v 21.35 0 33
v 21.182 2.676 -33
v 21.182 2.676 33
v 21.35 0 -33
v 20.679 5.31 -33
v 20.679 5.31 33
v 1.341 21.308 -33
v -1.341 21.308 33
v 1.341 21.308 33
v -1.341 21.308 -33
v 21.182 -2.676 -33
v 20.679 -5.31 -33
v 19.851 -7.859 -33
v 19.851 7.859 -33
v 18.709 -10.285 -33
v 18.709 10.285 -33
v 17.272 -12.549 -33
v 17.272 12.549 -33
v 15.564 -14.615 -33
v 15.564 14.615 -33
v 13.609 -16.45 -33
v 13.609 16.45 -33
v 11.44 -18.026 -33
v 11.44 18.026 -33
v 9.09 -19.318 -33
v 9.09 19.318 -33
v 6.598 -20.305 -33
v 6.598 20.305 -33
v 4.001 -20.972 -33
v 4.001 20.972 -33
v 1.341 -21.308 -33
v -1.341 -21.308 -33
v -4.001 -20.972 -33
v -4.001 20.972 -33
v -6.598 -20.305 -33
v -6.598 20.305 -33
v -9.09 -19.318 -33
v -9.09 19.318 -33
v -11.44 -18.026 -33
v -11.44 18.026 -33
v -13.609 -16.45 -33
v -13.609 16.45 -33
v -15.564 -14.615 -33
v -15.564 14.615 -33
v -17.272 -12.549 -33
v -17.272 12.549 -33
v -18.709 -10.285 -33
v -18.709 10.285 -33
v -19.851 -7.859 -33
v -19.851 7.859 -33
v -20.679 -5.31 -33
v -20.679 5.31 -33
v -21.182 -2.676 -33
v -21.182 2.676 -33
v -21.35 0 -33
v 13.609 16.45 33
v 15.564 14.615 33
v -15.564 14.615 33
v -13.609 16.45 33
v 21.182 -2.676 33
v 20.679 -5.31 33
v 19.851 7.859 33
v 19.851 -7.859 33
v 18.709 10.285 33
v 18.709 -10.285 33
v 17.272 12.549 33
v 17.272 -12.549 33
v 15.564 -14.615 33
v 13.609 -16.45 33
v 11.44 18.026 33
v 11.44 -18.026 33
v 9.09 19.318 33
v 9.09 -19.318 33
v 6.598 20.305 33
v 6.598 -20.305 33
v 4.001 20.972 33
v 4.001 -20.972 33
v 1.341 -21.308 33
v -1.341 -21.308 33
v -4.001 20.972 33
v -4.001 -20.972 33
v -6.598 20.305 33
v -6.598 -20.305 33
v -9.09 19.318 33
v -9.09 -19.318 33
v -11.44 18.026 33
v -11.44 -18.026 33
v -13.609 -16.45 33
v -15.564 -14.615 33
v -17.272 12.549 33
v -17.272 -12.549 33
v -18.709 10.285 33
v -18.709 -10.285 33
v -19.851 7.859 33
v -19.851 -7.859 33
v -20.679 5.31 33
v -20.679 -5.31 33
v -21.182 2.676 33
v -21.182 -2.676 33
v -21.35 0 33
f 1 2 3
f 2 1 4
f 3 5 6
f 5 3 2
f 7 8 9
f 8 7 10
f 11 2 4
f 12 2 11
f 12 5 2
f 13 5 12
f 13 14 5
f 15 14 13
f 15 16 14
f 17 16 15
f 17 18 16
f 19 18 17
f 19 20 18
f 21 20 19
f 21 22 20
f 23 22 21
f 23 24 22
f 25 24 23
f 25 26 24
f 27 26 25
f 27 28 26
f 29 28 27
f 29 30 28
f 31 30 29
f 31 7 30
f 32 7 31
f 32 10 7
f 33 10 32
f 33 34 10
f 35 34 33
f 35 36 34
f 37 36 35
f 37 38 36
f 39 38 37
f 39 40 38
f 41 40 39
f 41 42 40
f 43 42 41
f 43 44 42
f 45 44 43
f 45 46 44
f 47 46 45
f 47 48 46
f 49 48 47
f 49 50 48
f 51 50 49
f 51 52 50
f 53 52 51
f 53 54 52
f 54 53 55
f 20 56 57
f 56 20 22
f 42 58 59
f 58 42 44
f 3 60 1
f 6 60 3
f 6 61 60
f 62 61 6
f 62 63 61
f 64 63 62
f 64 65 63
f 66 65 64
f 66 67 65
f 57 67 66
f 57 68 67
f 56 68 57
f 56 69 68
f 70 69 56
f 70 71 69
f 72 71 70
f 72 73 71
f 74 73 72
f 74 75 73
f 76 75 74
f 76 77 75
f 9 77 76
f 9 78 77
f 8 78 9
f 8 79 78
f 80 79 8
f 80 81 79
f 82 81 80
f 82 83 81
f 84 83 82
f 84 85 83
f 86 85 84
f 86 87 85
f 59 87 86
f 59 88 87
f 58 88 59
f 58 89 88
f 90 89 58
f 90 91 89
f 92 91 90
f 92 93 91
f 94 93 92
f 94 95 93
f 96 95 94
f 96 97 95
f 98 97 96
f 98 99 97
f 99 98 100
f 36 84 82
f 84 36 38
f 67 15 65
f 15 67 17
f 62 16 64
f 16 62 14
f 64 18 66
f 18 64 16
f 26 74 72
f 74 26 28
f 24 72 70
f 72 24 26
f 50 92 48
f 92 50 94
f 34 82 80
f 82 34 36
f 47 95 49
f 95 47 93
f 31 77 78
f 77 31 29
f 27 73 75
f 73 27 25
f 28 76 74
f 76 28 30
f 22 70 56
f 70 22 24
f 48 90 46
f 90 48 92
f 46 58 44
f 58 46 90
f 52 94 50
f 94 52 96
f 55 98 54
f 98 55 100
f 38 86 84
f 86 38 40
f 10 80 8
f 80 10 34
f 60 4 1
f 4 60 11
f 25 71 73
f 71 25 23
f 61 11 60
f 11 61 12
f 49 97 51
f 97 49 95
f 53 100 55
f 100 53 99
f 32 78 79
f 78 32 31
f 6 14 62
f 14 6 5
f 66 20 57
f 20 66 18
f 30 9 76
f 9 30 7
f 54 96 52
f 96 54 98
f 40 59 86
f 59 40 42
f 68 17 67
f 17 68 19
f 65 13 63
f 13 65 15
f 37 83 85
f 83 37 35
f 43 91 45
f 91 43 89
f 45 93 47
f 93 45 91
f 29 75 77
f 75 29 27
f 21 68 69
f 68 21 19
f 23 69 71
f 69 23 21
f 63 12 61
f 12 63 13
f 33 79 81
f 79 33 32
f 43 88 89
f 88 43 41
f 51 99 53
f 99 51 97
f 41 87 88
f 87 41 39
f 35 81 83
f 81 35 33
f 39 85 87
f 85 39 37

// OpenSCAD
$fn = 50;


difference() {
	union() {
		translate(v = [0, 0, -33.0000000000]) {
			cylinder(h = 66, r = 21.3500000000);
		}
	}
	union() {
		translate(v = [0, 0, -100.0000000000]) {
			cylinder(h = 200, r = 0);
		}
	}
}
